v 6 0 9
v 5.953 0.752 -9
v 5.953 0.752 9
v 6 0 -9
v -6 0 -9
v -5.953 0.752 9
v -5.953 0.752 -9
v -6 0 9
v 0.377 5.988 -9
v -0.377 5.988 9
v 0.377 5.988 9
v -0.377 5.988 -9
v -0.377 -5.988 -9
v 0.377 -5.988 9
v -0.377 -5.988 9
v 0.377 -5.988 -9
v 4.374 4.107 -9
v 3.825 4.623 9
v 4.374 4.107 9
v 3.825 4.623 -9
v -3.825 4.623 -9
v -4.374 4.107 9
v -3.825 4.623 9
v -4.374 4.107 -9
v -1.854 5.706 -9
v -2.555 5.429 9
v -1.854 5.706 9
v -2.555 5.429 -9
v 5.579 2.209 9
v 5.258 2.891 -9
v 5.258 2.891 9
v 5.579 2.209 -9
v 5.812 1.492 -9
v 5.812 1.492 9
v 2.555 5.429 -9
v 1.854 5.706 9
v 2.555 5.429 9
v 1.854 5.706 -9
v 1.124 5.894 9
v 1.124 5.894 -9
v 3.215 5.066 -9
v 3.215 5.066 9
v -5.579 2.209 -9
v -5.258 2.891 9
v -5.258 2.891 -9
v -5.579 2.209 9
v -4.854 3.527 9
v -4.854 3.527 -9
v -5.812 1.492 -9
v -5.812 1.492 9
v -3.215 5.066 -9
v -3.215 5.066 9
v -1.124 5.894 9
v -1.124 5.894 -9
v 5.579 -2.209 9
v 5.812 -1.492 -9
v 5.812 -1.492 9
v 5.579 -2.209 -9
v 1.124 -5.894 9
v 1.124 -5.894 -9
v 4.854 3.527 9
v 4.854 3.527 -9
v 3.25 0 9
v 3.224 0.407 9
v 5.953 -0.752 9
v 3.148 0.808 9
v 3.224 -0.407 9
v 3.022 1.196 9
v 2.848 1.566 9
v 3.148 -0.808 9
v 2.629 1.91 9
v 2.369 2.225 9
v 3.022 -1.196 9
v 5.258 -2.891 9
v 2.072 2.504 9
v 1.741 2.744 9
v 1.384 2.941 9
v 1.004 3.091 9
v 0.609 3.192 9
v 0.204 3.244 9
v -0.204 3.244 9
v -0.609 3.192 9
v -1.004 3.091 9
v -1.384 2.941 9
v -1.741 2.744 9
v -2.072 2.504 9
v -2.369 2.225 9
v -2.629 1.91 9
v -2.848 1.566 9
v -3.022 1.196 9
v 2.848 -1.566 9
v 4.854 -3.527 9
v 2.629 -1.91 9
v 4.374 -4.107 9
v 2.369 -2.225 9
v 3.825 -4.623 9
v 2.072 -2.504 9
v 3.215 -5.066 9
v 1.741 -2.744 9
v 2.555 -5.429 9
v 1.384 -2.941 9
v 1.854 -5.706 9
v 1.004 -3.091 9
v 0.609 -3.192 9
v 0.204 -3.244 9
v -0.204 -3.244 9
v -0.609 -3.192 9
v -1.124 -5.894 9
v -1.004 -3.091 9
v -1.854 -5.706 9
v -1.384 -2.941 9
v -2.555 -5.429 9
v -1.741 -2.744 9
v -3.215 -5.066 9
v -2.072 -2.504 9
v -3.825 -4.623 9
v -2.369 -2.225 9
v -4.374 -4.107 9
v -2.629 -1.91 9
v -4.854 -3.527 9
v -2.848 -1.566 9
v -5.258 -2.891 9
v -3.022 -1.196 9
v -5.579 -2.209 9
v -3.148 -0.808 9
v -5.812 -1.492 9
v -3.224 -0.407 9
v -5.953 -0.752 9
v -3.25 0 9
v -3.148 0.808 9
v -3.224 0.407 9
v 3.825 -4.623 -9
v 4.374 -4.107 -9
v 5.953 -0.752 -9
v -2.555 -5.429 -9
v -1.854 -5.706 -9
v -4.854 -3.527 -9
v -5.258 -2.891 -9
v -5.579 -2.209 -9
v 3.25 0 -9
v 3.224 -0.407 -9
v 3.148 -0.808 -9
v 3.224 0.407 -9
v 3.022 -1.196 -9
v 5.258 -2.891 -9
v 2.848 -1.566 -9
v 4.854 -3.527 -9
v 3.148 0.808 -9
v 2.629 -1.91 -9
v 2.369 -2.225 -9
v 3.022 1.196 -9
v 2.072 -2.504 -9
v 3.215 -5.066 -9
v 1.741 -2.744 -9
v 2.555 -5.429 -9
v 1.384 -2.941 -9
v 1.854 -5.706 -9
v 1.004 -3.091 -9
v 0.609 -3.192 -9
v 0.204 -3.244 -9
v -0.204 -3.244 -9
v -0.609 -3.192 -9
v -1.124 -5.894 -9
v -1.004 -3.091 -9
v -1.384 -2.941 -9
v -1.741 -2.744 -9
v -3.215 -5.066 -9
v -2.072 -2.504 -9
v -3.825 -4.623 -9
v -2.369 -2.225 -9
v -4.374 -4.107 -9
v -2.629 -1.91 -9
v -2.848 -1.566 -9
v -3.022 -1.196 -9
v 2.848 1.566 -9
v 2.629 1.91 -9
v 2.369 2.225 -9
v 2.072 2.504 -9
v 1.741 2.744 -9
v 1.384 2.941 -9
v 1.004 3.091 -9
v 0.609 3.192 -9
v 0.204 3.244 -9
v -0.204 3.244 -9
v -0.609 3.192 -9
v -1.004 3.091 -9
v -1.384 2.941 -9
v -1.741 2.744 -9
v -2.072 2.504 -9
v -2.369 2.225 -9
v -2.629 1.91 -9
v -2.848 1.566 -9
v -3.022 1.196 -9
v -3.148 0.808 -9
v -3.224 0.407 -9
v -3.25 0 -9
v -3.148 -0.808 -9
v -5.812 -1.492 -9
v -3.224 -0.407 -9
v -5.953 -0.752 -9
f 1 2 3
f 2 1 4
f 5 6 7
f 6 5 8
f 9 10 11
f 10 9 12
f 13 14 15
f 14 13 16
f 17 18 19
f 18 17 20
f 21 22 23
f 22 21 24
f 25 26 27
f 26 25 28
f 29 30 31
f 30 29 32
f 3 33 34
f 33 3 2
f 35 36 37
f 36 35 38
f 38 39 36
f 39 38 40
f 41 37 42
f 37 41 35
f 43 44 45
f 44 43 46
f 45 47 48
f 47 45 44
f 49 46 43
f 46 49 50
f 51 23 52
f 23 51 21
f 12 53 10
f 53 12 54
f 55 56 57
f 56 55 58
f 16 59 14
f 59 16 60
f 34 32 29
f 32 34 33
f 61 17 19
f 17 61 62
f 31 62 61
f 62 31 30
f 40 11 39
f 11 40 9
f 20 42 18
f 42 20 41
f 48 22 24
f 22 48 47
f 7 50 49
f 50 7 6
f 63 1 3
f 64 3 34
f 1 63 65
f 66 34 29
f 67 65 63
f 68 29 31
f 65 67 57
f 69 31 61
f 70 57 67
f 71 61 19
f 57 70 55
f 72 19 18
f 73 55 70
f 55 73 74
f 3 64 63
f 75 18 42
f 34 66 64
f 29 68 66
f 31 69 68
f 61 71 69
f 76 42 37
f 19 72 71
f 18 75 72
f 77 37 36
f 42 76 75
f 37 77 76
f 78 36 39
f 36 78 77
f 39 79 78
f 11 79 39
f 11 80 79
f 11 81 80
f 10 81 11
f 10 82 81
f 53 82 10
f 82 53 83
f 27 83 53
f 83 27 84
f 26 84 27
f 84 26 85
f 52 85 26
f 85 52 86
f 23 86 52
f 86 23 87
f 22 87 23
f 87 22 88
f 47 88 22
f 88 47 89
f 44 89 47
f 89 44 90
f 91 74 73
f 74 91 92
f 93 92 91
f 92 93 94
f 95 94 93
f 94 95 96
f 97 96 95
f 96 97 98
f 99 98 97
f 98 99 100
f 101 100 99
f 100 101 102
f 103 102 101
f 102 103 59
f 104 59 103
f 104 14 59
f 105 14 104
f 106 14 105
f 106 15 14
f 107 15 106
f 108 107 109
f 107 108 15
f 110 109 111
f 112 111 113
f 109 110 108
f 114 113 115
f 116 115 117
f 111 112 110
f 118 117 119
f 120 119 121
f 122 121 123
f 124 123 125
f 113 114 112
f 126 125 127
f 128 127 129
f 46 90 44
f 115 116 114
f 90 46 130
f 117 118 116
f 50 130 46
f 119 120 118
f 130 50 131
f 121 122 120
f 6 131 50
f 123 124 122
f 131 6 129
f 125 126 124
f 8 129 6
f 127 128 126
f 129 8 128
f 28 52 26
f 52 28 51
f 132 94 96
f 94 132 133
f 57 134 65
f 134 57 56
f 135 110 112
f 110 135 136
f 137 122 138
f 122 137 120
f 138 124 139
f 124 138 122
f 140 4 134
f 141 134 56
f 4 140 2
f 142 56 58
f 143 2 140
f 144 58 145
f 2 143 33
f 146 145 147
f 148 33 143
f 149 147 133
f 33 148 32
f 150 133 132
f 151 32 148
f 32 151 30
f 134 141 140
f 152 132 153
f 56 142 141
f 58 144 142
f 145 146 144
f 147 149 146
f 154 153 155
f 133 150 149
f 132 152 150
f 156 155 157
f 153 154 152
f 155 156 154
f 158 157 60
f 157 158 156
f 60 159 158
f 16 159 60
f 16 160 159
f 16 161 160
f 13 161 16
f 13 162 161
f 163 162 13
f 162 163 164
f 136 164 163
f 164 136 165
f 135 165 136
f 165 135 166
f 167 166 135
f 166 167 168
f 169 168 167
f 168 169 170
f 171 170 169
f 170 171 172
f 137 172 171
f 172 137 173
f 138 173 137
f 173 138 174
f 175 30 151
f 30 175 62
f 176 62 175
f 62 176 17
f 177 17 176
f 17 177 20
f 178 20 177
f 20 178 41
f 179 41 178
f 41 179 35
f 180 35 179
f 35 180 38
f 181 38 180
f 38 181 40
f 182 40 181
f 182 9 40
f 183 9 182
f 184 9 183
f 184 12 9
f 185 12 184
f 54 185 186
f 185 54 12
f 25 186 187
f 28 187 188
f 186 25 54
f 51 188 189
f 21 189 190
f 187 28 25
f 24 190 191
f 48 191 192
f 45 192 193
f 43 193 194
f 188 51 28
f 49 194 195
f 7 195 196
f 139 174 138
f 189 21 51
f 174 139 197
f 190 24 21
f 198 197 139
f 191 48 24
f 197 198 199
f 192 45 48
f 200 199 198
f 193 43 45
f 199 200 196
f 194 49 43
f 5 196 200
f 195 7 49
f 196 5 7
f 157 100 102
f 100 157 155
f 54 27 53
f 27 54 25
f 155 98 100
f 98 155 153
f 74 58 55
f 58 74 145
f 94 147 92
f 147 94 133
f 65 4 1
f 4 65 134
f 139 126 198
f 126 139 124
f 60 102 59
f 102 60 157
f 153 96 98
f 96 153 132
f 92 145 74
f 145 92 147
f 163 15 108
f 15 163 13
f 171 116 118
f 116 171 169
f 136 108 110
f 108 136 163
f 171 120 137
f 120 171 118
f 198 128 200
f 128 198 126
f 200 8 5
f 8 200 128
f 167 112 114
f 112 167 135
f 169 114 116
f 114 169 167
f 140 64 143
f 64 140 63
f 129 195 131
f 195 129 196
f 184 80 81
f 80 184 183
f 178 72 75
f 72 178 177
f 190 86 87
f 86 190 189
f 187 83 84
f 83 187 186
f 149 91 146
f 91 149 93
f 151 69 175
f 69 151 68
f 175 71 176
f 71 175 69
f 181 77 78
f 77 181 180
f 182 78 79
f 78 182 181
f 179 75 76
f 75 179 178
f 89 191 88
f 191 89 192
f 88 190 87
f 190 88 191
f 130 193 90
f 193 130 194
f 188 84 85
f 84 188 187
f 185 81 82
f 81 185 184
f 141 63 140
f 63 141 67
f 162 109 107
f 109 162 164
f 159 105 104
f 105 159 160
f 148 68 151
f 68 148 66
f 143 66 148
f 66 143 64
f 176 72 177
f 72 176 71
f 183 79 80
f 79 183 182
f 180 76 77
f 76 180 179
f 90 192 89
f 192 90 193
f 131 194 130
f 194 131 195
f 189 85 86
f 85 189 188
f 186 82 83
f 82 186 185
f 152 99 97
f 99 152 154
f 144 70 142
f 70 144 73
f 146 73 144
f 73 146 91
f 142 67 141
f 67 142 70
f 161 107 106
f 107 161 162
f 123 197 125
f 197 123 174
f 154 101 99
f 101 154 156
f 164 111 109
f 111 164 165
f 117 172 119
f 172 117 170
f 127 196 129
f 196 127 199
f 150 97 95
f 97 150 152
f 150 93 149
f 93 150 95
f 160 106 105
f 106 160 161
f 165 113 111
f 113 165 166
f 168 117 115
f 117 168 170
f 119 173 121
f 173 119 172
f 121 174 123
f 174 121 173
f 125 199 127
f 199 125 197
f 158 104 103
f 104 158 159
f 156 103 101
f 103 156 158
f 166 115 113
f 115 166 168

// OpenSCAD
$fn = 50;


difference() {
	union() {
		translate(v = [0, 0, -9.0000000000]) {
			cylinder(h = 18, r = 6.0000000000);
		}
	}
	union() {
		translate(v = [0, 0, -100.0000000000]) {
			cylinder(h = 200, r = 3.2500000000);
		}
	}
}
